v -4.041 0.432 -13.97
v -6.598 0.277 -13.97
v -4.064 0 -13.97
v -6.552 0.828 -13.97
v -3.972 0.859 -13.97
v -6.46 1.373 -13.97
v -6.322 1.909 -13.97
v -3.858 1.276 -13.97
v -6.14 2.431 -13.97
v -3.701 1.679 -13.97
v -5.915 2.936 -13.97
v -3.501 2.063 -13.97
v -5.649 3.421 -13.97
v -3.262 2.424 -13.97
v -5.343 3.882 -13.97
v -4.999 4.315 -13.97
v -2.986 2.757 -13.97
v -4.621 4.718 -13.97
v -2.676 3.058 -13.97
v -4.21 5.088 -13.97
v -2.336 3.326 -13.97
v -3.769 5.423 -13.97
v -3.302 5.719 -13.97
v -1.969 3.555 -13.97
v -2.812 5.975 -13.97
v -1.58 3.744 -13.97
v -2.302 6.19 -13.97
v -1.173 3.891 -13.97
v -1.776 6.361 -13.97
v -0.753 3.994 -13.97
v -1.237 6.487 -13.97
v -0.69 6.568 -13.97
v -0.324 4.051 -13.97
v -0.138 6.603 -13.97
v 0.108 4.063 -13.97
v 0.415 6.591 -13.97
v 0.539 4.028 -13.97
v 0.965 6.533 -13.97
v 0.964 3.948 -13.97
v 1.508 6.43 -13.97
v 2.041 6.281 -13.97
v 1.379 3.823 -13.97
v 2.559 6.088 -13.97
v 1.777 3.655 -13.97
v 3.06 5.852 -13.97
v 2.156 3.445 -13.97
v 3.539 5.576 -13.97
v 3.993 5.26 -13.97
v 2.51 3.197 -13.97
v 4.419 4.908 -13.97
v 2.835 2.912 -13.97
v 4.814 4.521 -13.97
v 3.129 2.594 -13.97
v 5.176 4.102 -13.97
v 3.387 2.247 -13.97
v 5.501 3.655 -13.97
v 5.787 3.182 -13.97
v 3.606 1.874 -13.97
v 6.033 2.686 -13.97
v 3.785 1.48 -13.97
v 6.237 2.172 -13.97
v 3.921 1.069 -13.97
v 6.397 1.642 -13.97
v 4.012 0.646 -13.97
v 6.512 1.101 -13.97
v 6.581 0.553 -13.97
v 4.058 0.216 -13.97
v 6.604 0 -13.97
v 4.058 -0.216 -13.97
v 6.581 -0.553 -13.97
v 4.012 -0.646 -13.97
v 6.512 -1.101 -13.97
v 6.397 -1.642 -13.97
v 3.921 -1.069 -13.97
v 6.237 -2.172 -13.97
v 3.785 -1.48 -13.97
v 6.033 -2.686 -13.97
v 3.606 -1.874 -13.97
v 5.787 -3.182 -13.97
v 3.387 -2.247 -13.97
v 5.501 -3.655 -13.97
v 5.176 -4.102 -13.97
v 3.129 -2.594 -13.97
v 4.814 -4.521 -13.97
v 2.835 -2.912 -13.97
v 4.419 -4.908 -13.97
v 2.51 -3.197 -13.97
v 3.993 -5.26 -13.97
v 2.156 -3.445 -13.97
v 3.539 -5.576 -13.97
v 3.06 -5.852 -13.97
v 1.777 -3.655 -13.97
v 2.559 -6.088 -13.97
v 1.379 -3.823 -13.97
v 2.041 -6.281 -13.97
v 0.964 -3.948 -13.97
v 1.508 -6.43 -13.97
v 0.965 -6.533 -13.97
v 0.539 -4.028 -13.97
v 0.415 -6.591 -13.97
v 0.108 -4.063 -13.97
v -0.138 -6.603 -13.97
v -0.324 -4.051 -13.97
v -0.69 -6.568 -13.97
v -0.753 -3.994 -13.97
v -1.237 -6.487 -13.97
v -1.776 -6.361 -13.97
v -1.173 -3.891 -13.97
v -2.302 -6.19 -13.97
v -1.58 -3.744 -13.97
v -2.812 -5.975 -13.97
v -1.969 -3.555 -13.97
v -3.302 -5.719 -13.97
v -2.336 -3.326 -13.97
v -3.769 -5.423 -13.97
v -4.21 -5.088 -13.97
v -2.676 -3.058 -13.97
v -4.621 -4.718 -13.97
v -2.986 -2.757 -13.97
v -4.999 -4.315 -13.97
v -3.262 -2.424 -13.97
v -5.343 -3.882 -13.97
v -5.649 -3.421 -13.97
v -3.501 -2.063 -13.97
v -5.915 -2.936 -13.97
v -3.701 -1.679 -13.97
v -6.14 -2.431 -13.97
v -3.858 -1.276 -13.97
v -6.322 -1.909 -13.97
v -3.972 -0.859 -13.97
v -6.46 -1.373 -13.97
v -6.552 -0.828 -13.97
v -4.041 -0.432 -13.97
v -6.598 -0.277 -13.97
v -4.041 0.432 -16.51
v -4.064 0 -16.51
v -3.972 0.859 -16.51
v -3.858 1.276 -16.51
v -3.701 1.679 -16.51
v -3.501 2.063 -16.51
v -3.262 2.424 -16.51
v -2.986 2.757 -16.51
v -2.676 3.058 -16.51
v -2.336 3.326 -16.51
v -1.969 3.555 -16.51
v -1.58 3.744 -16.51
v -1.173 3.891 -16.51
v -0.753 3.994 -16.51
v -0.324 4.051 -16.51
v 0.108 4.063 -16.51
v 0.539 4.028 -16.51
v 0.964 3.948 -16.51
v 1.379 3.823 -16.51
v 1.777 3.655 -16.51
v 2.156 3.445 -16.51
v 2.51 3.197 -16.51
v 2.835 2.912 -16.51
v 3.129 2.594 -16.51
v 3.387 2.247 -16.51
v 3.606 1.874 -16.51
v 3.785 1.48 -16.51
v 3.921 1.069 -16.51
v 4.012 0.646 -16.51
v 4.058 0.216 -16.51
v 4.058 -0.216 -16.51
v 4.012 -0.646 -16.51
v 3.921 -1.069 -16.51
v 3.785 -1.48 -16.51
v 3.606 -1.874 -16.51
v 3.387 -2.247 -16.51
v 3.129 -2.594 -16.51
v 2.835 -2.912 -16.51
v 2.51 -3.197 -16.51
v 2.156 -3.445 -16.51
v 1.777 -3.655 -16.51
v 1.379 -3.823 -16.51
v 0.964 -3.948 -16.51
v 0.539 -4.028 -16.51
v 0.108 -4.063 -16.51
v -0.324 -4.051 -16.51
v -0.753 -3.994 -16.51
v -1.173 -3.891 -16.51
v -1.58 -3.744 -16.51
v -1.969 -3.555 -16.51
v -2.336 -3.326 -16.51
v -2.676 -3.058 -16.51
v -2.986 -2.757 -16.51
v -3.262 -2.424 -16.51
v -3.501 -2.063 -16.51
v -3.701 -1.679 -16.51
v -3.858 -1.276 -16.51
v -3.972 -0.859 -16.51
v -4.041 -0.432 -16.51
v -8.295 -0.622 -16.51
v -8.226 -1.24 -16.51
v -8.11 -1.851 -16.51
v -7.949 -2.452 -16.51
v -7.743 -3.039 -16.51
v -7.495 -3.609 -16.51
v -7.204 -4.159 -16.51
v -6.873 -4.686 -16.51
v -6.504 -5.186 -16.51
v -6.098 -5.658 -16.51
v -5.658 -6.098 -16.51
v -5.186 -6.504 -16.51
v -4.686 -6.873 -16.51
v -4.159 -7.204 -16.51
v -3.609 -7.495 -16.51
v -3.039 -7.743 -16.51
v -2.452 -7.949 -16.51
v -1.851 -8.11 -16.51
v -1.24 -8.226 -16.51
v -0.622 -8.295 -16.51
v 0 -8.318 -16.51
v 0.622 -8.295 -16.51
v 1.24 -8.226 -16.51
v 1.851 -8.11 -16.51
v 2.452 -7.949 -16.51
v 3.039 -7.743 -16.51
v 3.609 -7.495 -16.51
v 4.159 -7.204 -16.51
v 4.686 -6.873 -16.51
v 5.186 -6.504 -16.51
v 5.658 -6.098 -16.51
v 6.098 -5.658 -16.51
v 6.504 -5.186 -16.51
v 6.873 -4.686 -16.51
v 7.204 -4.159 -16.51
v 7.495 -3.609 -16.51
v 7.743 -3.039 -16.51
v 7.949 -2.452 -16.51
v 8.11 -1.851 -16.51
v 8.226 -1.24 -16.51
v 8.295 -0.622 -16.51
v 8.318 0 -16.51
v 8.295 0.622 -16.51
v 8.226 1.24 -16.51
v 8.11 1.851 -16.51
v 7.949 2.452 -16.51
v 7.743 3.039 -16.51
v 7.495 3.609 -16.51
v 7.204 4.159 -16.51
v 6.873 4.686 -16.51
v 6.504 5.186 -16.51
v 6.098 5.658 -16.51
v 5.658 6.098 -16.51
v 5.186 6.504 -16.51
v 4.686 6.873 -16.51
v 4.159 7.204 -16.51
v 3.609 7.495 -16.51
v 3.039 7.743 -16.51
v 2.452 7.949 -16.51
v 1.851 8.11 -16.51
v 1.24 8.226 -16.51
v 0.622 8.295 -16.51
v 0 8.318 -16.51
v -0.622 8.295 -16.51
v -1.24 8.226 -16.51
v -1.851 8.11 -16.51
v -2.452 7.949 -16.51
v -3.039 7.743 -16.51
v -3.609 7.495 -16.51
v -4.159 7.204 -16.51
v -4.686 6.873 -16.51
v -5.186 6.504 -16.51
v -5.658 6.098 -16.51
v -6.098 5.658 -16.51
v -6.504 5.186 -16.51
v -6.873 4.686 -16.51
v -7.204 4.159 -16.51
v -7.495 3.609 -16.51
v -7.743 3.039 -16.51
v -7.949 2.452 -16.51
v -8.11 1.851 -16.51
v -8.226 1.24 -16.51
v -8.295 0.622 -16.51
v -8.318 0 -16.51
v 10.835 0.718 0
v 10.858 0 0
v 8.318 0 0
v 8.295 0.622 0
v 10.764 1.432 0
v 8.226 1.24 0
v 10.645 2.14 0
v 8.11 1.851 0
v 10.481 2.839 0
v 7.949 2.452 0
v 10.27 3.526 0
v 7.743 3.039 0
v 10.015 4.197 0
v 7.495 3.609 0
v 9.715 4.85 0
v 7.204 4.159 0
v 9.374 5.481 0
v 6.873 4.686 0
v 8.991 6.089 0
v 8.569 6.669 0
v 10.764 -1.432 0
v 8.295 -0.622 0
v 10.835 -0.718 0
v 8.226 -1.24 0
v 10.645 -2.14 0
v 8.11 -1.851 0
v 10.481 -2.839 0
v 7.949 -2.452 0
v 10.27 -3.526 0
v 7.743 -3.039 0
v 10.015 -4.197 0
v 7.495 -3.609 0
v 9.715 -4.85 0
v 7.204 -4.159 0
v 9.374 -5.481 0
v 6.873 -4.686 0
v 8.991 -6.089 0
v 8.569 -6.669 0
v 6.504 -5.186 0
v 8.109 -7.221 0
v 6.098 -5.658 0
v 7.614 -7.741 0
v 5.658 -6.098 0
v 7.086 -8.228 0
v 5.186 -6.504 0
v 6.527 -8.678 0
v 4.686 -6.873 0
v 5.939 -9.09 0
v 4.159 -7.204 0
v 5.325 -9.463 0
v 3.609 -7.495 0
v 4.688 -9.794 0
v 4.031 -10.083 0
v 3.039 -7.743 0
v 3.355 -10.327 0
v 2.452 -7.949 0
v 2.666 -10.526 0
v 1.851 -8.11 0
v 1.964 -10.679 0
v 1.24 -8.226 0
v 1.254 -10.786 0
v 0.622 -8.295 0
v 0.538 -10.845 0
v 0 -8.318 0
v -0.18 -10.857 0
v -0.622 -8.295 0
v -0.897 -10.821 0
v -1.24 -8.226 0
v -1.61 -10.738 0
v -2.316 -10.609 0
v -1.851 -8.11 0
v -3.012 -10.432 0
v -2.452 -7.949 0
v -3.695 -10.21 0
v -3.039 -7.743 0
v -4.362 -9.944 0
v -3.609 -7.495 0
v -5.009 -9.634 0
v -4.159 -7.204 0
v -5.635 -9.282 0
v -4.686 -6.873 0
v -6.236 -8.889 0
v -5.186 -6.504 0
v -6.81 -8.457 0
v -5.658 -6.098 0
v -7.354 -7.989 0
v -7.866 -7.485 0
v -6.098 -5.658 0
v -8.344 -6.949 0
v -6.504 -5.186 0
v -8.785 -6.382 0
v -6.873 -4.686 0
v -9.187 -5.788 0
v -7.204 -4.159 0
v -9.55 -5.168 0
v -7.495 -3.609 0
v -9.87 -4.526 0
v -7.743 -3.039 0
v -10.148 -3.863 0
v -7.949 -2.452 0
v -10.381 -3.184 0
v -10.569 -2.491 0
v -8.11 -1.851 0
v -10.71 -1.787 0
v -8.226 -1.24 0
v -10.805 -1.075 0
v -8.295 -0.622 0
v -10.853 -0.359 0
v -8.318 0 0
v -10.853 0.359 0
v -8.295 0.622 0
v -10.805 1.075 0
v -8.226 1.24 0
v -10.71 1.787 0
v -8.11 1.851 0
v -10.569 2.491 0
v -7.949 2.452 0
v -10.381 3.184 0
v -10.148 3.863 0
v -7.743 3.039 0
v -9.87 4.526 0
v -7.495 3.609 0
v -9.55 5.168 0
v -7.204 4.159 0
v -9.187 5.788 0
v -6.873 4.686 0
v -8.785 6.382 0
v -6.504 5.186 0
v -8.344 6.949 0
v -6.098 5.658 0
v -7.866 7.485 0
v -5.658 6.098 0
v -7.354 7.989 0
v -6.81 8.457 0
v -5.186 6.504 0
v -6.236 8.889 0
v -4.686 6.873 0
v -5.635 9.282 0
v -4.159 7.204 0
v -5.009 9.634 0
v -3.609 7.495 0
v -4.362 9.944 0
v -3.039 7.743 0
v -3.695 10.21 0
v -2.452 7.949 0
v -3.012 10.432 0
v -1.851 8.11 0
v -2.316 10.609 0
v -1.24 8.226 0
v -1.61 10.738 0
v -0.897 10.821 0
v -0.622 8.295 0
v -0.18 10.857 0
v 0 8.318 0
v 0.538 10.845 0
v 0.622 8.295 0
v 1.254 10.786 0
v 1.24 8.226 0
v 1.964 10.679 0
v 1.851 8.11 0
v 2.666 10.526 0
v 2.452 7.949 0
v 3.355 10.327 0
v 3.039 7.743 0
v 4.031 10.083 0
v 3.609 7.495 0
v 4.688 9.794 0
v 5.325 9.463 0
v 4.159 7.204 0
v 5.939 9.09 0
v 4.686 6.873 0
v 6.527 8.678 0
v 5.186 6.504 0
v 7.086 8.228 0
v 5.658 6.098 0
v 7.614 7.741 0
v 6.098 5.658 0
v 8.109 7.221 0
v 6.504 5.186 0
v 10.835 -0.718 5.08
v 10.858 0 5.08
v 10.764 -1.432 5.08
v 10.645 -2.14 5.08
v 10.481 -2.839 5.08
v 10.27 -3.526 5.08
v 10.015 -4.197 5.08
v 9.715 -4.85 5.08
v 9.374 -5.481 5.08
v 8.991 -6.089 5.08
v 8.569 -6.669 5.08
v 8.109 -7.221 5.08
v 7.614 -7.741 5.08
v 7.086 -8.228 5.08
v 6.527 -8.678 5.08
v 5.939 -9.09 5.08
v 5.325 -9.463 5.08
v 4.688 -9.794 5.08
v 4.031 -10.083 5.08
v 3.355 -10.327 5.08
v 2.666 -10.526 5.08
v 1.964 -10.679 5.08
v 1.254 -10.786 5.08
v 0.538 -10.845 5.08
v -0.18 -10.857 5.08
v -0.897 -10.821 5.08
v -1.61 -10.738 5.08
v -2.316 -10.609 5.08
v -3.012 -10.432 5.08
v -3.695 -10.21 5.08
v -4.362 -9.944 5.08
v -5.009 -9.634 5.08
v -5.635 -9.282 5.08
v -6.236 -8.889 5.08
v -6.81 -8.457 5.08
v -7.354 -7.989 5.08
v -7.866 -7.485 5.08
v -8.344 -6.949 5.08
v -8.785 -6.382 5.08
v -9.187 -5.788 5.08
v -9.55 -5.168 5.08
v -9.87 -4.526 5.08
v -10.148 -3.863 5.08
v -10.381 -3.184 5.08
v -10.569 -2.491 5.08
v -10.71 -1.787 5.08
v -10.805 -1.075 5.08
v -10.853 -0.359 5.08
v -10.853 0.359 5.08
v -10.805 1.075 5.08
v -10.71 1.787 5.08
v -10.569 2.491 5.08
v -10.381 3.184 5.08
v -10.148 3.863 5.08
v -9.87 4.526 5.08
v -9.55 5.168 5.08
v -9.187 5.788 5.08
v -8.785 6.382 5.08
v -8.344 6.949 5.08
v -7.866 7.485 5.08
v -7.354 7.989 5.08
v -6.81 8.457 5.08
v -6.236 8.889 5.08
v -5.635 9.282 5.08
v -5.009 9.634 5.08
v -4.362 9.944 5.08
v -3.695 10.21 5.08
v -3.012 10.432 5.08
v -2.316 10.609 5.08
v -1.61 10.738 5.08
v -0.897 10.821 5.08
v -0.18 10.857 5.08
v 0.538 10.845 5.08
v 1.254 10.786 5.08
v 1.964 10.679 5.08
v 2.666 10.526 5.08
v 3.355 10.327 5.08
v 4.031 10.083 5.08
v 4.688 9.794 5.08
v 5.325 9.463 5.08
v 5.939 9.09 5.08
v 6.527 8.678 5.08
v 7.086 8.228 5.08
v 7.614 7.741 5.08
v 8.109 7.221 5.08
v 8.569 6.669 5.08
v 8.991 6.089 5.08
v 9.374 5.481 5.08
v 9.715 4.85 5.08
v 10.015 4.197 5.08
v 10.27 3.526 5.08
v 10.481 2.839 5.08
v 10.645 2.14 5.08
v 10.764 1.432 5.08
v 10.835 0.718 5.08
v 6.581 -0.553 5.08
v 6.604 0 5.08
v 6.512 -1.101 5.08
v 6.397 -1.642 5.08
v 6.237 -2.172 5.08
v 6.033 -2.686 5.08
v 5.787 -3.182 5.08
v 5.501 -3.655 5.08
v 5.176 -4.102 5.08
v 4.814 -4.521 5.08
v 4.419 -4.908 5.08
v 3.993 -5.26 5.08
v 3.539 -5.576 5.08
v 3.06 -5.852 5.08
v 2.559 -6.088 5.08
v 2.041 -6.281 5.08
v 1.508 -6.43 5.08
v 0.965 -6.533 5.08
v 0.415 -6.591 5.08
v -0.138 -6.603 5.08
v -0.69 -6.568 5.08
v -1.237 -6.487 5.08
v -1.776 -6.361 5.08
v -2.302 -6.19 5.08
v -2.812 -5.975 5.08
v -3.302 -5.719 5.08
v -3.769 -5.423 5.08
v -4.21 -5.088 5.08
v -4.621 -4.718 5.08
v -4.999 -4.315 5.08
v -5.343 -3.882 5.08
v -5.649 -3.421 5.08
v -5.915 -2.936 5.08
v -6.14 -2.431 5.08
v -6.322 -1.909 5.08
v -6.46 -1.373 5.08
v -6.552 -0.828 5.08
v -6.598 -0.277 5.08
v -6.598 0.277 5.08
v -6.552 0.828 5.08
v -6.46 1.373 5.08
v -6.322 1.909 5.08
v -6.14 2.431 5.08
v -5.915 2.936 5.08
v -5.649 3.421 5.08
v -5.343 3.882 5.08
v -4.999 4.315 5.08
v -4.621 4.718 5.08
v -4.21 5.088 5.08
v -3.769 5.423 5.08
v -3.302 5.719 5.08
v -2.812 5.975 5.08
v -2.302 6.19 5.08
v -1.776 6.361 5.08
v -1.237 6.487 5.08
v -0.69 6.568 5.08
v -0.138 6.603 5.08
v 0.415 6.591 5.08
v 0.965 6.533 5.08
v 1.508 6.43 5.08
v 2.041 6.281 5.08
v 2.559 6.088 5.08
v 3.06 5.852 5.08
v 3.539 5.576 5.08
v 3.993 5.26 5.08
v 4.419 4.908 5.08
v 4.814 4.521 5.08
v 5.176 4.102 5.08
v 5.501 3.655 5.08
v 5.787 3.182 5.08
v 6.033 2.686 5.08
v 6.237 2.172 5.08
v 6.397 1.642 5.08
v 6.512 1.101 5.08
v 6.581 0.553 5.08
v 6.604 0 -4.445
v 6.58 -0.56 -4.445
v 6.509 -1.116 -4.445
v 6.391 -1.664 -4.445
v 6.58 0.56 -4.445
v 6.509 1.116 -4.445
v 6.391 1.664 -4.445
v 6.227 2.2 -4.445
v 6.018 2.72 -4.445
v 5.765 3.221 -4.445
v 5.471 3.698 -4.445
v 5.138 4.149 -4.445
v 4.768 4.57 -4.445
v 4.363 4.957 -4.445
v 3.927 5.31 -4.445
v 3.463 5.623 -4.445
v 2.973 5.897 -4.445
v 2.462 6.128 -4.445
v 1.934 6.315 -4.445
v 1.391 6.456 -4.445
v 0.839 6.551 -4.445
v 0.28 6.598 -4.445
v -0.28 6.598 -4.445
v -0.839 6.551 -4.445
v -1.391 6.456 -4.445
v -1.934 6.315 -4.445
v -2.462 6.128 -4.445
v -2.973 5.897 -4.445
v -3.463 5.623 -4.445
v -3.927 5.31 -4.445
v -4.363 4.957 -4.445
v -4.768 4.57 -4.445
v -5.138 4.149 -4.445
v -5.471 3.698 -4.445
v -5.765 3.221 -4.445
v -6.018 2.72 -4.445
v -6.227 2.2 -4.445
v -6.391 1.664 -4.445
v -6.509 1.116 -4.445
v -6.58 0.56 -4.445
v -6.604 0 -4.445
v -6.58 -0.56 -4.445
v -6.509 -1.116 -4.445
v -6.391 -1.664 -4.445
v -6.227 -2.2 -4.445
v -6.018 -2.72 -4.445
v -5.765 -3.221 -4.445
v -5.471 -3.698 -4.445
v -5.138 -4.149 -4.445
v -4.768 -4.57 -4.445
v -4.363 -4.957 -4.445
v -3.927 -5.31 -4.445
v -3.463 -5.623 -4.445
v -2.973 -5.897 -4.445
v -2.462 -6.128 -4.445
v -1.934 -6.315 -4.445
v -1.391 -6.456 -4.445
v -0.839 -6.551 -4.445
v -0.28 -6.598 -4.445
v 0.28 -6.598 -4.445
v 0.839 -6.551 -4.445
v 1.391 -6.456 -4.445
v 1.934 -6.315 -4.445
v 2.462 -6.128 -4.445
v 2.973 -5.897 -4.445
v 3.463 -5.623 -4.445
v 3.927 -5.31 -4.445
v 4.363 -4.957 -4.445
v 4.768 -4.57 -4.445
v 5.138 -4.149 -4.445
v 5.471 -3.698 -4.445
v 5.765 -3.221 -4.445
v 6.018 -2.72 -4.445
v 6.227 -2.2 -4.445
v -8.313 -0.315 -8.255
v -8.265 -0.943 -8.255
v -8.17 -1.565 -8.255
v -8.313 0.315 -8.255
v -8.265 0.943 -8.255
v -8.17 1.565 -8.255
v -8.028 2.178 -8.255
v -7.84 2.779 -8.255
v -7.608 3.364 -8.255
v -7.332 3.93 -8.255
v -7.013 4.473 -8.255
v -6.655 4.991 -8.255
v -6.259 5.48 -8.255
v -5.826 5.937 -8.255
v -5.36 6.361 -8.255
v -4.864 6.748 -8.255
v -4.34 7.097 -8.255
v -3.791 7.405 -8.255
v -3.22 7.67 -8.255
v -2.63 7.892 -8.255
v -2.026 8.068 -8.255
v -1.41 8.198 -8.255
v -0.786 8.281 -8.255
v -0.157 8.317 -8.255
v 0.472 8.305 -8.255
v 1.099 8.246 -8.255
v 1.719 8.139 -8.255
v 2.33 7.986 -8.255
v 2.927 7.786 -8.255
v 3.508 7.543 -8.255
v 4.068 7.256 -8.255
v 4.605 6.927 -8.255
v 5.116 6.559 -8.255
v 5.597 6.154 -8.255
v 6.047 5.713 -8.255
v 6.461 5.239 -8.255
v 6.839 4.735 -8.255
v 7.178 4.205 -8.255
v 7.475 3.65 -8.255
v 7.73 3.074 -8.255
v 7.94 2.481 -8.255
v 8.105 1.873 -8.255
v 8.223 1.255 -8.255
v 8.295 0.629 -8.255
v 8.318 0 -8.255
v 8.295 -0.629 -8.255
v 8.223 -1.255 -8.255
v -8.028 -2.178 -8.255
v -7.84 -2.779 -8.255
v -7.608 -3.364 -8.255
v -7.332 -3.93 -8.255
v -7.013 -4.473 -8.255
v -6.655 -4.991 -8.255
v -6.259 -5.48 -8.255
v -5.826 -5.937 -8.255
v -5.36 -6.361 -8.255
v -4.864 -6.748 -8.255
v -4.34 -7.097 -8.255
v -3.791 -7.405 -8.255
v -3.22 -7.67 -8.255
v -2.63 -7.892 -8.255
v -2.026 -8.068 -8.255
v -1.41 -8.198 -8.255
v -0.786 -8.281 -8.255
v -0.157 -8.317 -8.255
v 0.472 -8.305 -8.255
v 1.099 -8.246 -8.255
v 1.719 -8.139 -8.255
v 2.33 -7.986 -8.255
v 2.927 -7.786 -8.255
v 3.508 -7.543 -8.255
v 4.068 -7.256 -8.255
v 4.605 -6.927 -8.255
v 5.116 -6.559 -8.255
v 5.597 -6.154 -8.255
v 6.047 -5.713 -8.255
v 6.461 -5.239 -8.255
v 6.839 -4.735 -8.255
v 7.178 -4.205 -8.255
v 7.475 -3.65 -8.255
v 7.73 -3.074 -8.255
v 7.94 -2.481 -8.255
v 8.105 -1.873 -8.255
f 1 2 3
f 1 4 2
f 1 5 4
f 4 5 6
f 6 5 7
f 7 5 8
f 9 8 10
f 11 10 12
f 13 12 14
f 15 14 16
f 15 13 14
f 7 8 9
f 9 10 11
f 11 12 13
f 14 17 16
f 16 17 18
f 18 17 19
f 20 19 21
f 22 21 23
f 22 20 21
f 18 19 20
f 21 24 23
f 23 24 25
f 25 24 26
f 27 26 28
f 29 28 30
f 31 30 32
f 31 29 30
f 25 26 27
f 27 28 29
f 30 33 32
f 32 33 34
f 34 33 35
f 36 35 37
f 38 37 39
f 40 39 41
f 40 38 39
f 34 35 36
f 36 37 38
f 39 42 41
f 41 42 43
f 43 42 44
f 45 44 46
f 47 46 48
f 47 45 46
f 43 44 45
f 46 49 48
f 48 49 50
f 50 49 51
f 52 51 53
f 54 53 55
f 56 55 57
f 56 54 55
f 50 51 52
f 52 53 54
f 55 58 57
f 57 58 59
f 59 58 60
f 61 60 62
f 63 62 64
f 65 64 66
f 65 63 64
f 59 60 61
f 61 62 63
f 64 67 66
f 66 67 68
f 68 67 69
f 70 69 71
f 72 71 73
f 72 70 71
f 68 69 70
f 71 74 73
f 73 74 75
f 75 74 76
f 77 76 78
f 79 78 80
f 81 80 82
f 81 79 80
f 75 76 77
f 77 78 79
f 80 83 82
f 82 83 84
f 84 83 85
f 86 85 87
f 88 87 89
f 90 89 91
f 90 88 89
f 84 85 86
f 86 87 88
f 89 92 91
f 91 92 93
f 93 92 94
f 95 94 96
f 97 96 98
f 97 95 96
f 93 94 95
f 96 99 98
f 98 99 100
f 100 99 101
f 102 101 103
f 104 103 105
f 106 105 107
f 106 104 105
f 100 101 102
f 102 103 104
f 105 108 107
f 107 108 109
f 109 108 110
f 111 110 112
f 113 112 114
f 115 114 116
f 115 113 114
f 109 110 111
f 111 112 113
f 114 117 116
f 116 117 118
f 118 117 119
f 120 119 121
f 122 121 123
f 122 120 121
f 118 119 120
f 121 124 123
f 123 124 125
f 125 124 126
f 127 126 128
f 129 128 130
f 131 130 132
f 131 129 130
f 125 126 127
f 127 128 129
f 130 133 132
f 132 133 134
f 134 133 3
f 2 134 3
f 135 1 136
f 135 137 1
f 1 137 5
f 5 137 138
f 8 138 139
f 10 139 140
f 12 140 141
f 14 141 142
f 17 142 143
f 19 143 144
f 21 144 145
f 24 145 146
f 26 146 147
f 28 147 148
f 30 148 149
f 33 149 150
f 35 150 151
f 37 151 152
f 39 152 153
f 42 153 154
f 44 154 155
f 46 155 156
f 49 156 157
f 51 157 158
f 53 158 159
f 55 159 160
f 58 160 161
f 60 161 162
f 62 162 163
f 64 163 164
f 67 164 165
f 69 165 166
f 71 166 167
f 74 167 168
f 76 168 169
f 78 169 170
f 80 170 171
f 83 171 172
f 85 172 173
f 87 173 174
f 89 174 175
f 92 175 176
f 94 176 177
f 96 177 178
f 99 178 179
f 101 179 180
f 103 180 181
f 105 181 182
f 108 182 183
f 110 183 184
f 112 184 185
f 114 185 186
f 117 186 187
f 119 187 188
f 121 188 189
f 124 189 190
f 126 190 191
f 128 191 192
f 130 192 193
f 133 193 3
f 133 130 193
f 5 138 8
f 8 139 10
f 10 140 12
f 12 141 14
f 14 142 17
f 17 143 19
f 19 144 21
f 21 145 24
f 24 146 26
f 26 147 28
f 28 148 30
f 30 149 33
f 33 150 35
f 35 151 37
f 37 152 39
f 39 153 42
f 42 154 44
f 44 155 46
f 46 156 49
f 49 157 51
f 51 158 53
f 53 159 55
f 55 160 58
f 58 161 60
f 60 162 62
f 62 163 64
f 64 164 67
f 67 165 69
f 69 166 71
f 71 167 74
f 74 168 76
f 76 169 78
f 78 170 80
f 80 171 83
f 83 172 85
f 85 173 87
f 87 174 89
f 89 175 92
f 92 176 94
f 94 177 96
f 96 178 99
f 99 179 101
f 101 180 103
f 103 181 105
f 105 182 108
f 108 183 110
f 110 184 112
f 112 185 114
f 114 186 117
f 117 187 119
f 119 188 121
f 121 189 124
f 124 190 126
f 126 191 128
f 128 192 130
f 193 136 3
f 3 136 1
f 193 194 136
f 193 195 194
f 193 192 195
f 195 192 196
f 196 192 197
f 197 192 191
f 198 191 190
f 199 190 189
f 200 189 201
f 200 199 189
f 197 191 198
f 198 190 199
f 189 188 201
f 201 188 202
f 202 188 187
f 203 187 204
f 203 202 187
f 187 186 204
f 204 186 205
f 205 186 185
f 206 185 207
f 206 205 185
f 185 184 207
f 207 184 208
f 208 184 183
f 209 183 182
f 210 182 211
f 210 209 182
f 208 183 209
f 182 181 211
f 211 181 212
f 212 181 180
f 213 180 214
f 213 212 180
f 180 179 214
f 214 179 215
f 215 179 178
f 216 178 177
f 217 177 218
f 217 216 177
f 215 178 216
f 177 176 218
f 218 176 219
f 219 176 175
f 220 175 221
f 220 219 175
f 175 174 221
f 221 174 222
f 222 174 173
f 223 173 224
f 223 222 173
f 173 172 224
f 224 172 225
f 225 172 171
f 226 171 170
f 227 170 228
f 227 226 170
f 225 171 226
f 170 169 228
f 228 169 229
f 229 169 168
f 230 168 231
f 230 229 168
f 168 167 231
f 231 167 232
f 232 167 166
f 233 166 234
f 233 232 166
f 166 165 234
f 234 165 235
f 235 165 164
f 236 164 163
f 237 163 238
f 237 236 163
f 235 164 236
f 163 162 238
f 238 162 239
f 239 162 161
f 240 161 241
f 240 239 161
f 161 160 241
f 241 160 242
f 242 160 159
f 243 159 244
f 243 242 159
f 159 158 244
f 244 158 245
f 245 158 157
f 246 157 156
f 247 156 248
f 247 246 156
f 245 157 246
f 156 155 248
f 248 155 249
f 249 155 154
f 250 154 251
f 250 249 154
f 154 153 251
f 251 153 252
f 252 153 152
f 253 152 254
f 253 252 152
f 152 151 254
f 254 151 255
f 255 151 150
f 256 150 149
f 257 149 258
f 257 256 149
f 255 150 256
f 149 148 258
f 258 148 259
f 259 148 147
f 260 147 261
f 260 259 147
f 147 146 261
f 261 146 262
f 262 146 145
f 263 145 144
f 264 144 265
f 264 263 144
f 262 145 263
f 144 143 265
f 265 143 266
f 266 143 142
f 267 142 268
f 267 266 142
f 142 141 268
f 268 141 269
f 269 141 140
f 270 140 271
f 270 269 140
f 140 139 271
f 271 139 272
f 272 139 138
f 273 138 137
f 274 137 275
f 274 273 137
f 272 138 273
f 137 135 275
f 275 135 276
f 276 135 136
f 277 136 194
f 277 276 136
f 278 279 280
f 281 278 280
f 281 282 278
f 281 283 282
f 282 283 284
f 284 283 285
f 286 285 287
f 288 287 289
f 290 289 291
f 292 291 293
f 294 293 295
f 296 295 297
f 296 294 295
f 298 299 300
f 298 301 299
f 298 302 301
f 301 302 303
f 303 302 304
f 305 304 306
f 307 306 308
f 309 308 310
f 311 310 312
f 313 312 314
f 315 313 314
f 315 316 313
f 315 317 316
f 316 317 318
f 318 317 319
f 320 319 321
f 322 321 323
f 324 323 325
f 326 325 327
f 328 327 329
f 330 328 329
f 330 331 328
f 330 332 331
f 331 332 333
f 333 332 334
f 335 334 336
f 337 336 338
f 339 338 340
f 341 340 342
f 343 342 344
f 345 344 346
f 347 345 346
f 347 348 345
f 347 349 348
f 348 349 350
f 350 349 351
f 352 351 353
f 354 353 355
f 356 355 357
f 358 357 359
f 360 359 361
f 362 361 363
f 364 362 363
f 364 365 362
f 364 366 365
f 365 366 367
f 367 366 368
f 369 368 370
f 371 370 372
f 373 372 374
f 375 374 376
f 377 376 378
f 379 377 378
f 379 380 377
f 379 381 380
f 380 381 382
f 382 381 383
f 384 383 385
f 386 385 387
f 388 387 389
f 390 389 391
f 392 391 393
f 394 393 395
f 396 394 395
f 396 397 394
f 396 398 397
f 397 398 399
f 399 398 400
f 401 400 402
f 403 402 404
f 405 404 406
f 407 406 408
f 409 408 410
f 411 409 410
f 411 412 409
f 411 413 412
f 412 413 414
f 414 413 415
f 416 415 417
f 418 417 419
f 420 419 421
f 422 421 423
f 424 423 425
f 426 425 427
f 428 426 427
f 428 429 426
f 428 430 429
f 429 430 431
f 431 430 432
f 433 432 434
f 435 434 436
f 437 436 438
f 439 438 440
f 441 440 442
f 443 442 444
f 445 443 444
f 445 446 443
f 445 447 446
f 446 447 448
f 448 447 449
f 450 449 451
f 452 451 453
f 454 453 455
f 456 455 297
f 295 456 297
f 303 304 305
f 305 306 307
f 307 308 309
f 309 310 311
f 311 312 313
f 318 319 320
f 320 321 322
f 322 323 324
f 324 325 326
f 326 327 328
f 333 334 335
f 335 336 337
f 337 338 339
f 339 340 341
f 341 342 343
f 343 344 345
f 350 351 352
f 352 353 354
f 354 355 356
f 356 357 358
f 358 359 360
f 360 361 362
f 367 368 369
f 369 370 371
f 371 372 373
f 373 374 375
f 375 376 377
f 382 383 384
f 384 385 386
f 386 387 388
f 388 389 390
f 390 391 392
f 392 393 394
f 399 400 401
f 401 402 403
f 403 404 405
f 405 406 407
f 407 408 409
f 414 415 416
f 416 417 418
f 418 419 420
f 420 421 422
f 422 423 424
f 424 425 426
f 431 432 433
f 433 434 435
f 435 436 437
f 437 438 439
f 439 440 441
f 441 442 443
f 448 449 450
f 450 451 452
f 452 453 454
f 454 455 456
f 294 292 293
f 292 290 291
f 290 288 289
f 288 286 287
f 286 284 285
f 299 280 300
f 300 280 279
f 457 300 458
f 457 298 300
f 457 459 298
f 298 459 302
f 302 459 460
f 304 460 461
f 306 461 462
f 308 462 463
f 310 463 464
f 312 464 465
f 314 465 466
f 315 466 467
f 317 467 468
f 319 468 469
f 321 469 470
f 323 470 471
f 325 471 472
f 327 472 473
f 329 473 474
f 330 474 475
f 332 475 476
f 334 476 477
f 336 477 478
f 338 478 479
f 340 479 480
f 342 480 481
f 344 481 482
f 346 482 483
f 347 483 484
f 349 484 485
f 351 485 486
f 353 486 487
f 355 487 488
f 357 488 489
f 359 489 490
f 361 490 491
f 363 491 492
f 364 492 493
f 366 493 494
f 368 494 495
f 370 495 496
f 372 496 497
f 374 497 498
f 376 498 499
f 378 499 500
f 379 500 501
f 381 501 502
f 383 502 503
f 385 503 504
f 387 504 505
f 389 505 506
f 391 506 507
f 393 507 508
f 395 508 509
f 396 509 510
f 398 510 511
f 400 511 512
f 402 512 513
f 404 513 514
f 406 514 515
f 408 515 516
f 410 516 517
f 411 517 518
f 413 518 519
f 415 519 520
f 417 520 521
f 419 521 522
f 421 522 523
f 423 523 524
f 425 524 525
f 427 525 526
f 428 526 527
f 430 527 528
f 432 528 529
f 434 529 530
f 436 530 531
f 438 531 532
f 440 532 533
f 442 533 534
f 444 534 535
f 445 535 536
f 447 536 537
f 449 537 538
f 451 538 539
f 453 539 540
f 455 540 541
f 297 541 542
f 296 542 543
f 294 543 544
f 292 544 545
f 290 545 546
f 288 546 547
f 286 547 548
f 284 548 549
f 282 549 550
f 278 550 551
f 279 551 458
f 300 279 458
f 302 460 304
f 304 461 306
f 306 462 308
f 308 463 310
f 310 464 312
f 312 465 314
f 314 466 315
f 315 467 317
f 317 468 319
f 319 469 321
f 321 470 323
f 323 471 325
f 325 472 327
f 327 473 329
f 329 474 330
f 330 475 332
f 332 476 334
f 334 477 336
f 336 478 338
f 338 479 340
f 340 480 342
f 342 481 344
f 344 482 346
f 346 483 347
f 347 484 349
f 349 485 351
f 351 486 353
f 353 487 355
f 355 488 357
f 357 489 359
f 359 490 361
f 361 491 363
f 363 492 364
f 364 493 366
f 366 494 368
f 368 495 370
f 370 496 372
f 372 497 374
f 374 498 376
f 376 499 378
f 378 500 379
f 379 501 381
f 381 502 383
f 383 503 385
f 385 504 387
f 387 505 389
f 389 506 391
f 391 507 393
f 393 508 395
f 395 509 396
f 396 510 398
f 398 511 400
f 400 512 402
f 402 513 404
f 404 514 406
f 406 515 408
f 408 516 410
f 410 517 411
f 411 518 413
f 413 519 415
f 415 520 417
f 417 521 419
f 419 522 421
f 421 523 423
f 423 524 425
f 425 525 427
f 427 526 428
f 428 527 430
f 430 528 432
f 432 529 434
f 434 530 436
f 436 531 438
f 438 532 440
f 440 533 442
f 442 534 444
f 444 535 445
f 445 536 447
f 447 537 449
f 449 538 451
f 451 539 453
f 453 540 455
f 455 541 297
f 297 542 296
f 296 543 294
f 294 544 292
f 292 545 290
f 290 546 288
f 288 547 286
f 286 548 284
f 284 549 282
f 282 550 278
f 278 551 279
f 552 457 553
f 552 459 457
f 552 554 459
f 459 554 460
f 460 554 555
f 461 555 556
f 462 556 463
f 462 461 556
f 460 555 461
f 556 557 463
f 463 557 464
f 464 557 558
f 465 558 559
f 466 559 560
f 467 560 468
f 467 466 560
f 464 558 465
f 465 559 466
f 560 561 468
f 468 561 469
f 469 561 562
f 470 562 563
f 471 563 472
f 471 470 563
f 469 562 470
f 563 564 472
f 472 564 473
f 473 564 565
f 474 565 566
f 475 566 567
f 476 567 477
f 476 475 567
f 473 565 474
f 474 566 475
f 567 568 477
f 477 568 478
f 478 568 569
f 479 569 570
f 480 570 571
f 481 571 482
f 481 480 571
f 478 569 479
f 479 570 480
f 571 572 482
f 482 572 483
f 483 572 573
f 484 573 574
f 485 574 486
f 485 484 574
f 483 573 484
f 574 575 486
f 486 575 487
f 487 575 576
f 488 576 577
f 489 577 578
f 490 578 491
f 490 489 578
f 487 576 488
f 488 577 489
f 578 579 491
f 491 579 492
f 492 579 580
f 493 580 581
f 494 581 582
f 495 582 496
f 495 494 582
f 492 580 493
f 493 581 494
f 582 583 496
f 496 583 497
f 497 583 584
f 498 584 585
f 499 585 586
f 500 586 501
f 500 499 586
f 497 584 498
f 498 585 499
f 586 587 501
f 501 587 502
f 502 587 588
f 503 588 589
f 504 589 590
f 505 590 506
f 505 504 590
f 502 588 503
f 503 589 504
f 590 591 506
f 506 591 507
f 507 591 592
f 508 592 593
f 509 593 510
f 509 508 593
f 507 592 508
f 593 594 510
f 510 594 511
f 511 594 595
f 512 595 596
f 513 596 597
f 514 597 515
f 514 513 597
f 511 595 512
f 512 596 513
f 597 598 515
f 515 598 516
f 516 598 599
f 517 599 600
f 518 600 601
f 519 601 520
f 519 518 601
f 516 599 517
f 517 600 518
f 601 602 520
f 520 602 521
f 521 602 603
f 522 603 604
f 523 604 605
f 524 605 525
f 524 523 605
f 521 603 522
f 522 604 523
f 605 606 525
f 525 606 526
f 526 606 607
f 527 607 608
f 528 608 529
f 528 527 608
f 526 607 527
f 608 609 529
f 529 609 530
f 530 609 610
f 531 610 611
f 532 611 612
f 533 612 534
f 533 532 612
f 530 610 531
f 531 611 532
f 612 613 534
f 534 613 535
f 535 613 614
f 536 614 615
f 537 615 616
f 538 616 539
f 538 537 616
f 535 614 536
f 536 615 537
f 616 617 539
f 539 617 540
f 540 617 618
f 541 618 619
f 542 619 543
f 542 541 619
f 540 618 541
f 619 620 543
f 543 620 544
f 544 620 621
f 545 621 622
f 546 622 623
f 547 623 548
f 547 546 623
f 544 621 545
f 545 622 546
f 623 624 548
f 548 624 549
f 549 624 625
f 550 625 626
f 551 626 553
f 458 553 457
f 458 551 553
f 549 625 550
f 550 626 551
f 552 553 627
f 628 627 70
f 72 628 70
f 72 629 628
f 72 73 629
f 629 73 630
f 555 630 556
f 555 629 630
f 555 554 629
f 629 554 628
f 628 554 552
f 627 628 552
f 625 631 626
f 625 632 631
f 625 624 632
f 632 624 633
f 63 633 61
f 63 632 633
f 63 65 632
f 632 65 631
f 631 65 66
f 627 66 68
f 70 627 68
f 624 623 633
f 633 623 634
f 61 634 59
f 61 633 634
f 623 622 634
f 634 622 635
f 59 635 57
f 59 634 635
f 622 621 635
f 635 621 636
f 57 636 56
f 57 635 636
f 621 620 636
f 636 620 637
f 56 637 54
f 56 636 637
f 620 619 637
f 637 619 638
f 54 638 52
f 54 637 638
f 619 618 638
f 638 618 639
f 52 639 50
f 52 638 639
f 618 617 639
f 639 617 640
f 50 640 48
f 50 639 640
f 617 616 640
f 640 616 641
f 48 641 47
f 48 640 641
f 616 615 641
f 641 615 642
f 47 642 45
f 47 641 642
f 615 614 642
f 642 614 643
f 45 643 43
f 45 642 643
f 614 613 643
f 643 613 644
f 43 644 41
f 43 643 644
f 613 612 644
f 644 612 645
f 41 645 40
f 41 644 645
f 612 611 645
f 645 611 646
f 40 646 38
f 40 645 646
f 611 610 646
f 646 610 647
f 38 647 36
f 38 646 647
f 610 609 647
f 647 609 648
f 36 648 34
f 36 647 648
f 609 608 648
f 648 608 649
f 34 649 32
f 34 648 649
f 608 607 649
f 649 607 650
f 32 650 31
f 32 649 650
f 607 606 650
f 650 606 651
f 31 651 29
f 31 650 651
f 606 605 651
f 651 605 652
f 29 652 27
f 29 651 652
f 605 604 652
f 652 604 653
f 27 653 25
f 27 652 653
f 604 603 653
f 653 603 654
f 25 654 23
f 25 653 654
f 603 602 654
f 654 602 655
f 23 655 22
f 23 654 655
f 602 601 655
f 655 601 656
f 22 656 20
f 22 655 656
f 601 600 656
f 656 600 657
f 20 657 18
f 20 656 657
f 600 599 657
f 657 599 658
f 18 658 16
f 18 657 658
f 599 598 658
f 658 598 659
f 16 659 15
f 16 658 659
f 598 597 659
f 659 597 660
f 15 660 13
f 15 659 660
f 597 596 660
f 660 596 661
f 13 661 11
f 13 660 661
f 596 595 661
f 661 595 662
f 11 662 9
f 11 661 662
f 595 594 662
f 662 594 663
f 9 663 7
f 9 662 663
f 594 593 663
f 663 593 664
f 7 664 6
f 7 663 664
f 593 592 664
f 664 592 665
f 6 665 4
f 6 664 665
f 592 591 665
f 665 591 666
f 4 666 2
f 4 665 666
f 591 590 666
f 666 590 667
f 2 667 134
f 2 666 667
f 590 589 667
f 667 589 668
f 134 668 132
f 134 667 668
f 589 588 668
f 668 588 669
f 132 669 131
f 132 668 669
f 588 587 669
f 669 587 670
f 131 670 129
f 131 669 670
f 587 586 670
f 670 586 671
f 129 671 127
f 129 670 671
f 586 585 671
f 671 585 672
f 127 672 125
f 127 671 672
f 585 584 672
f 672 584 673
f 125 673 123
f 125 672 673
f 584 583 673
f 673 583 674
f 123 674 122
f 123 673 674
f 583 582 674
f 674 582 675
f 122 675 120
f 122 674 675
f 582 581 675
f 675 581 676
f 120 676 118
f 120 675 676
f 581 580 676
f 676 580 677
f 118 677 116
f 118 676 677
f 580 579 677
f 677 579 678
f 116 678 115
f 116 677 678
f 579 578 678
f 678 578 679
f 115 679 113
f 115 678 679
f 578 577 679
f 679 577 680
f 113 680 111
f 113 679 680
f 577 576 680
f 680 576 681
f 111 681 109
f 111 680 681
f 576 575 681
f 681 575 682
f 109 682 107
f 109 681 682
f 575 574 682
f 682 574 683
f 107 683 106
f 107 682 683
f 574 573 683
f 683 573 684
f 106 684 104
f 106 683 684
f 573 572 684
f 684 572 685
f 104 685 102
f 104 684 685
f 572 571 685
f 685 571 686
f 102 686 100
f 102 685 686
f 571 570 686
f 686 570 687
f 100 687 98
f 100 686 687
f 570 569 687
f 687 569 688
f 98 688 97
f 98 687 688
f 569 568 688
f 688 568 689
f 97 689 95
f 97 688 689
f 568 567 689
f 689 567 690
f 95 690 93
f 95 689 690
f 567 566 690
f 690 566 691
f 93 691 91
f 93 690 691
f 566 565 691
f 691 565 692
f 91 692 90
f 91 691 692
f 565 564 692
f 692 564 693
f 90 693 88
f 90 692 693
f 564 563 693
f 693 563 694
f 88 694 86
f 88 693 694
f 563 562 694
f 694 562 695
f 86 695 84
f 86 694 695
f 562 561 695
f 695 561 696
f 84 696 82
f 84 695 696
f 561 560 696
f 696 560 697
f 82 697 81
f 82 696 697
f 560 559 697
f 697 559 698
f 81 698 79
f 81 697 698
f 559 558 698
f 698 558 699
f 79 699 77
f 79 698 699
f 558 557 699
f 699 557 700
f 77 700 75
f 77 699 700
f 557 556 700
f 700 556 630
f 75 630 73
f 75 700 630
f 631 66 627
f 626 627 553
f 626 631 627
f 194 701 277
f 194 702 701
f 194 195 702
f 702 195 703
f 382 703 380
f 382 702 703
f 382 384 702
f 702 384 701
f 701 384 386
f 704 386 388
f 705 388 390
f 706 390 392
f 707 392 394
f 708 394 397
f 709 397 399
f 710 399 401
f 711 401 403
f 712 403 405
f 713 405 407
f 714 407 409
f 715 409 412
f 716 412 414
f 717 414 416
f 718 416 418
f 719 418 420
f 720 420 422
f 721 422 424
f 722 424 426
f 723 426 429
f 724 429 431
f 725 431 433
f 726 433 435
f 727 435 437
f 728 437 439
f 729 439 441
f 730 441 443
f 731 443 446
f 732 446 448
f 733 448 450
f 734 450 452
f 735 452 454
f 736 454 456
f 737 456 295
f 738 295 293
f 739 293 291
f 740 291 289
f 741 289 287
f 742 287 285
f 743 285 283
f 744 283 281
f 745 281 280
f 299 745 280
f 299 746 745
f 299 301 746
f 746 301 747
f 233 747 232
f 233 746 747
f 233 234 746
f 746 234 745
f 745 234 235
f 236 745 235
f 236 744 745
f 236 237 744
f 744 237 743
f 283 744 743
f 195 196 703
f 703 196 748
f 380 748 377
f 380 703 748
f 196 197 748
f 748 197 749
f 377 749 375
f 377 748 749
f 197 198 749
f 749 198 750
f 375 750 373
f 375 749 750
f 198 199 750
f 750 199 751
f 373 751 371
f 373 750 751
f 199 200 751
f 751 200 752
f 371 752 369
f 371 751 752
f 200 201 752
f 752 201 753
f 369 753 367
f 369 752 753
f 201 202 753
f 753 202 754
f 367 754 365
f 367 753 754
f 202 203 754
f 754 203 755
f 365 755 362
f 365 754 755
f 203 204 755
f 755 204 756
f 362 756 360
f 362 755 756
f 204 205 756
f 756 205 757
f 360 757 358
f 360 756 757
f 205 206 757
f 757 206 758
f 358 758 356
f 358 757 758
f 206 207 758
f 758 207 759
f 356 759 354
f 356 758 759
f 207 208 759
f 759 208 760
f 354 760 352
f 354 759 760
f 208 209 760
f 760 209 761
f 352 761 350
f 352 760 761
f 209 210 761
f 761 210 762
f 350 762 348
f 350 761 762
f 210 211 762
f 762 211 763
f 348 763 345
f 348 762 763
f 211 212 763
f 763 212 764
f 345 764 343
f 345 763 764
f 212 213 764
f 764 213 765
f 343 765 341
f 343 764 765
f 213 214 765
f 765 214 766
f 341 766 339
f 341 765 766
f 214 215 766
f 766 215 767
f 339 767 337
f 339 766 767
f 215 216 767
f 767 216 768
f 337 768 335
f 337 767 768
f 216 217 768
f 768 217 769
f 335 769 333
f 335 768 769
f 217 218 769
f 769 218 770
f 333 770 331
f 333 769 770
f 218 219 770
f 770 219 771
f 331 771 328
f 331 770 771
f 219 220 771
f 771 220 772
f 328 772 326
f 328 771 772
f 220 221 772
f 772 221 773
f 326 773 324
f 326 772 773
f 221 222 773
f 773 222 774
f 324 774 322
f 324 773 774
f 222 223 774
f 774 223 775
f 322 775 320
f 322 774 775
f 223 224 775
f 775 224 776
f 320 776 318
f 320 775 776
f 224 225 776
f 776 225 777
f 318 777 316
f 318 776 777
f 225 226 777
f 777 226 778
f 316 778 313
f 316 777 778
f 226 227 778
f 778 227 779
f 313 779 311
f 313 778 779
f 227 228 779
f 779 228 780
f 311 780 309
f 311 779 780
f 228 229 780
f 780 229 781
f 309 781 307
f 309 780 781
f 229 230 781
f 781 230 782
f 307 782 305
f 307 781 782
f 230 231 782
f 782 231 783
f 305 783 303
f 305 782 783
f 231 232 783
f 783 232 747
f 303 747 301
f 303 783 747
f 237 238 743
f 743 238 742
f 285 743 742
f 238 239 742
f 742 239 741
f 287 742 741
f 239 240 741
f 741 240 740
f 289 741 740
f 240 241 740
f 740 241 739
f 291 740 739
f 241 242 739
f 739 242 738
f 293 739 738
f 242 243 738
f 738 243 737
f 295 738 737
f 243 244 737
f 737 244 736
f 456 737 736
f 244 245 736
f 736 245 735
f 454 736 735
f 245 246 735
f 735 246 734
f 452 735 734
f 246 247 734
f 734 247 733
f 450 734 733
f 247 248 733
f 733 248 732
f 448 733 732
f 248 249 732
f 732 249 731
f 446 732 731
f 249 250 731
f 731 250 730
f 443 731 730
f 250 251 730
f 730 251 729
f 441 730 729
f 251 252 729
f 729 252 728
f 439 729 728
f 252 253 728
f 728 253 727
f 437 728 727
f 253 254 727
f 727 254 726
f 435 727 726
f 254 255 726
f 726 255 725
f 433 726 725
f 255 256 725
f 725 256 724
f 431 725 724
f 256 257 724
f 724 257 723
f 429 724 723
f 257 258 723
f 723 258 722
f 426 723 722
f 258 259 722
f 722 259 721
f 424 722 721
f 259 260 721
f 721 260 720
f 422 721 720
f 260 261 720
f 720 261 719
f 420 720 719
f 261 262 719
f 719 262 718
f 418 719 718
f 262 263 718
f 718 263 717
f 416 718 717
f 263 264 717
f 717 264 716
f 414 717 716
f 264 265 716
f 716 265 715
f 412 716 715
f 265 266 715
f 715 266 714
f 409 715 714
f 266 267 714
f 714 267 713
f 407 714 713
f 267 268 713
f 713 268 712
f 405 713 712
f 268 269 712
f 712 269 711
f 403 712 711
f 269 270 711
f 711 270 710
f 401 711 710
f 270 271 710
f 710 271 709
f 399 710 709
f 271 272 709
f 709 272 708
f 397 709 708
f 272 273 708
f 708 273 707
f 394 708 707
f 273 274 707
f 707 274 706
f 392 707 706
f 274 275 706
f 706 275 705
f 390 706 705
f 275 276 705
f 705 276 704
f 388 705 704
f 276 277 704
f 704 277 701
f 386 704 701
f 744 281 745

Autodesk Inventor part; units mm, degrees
ref_plane "YZ Plane" through (0, 0, 0) normal (1, 0, 0) x (0, 1, 0)
ref_plane "Work Plane1" through (0, 0, 0) normal (0, 0, 1) x (1, 0, 0)
sketch "Sketch1" plane through (0, 0, 0) normal (0, 0, 1) x (1, 0, 0)
  circle A0 centre (0, 0) radius 8.5725 projected
  circle A1 centre (0, 0) radius 8.3185
  circle A2 centre (0, 0) radius 6.604
  point P0 (0, 0)
  dimension "d0" = 0.254
  dimension "d1" = 13.208
ref_plane "Work Plane2" through (-23.495, -23.495, -13.97) normal (0, 0, -1) x (0, 1, 0)
extrude "Extrusion1" add sketch "Sketch1" against normal up to surface (13.97 mm away) contours A1
sketch "Sketch2" plane through (0, 0, 0) normal (0, 0, 1) x (1, 0, 0)
  circle A0 centre (0, 0) radius 6.604 projected
  circle A1 centre (0, 0) radius 8.3185 projected
  circle A2 centre (0, 0) radius 10.8585
  dimension "d4" = 2.54
extrude "Extrusion2" add sketch "Sketch2" along normal blind 5.08 contours A1 | A2
sketch "Sketch4" plane through (0, 0, -13.97) normal (0, 0, -1) x (-1, 0, 0)
  circle A0 centre (0, 0) radius 6.604 projected
  circle A1 centre (0, 0) radius 8.3185 projected
  circle A2 centre (0, 0) radius 4.064
  dimension "d9" = 2.54
extrude "Extrusion4" add sketch "Sketch4" along normal blind 2.54 contours A0 | A1
properties part number "Big Bearing Sleeve"
